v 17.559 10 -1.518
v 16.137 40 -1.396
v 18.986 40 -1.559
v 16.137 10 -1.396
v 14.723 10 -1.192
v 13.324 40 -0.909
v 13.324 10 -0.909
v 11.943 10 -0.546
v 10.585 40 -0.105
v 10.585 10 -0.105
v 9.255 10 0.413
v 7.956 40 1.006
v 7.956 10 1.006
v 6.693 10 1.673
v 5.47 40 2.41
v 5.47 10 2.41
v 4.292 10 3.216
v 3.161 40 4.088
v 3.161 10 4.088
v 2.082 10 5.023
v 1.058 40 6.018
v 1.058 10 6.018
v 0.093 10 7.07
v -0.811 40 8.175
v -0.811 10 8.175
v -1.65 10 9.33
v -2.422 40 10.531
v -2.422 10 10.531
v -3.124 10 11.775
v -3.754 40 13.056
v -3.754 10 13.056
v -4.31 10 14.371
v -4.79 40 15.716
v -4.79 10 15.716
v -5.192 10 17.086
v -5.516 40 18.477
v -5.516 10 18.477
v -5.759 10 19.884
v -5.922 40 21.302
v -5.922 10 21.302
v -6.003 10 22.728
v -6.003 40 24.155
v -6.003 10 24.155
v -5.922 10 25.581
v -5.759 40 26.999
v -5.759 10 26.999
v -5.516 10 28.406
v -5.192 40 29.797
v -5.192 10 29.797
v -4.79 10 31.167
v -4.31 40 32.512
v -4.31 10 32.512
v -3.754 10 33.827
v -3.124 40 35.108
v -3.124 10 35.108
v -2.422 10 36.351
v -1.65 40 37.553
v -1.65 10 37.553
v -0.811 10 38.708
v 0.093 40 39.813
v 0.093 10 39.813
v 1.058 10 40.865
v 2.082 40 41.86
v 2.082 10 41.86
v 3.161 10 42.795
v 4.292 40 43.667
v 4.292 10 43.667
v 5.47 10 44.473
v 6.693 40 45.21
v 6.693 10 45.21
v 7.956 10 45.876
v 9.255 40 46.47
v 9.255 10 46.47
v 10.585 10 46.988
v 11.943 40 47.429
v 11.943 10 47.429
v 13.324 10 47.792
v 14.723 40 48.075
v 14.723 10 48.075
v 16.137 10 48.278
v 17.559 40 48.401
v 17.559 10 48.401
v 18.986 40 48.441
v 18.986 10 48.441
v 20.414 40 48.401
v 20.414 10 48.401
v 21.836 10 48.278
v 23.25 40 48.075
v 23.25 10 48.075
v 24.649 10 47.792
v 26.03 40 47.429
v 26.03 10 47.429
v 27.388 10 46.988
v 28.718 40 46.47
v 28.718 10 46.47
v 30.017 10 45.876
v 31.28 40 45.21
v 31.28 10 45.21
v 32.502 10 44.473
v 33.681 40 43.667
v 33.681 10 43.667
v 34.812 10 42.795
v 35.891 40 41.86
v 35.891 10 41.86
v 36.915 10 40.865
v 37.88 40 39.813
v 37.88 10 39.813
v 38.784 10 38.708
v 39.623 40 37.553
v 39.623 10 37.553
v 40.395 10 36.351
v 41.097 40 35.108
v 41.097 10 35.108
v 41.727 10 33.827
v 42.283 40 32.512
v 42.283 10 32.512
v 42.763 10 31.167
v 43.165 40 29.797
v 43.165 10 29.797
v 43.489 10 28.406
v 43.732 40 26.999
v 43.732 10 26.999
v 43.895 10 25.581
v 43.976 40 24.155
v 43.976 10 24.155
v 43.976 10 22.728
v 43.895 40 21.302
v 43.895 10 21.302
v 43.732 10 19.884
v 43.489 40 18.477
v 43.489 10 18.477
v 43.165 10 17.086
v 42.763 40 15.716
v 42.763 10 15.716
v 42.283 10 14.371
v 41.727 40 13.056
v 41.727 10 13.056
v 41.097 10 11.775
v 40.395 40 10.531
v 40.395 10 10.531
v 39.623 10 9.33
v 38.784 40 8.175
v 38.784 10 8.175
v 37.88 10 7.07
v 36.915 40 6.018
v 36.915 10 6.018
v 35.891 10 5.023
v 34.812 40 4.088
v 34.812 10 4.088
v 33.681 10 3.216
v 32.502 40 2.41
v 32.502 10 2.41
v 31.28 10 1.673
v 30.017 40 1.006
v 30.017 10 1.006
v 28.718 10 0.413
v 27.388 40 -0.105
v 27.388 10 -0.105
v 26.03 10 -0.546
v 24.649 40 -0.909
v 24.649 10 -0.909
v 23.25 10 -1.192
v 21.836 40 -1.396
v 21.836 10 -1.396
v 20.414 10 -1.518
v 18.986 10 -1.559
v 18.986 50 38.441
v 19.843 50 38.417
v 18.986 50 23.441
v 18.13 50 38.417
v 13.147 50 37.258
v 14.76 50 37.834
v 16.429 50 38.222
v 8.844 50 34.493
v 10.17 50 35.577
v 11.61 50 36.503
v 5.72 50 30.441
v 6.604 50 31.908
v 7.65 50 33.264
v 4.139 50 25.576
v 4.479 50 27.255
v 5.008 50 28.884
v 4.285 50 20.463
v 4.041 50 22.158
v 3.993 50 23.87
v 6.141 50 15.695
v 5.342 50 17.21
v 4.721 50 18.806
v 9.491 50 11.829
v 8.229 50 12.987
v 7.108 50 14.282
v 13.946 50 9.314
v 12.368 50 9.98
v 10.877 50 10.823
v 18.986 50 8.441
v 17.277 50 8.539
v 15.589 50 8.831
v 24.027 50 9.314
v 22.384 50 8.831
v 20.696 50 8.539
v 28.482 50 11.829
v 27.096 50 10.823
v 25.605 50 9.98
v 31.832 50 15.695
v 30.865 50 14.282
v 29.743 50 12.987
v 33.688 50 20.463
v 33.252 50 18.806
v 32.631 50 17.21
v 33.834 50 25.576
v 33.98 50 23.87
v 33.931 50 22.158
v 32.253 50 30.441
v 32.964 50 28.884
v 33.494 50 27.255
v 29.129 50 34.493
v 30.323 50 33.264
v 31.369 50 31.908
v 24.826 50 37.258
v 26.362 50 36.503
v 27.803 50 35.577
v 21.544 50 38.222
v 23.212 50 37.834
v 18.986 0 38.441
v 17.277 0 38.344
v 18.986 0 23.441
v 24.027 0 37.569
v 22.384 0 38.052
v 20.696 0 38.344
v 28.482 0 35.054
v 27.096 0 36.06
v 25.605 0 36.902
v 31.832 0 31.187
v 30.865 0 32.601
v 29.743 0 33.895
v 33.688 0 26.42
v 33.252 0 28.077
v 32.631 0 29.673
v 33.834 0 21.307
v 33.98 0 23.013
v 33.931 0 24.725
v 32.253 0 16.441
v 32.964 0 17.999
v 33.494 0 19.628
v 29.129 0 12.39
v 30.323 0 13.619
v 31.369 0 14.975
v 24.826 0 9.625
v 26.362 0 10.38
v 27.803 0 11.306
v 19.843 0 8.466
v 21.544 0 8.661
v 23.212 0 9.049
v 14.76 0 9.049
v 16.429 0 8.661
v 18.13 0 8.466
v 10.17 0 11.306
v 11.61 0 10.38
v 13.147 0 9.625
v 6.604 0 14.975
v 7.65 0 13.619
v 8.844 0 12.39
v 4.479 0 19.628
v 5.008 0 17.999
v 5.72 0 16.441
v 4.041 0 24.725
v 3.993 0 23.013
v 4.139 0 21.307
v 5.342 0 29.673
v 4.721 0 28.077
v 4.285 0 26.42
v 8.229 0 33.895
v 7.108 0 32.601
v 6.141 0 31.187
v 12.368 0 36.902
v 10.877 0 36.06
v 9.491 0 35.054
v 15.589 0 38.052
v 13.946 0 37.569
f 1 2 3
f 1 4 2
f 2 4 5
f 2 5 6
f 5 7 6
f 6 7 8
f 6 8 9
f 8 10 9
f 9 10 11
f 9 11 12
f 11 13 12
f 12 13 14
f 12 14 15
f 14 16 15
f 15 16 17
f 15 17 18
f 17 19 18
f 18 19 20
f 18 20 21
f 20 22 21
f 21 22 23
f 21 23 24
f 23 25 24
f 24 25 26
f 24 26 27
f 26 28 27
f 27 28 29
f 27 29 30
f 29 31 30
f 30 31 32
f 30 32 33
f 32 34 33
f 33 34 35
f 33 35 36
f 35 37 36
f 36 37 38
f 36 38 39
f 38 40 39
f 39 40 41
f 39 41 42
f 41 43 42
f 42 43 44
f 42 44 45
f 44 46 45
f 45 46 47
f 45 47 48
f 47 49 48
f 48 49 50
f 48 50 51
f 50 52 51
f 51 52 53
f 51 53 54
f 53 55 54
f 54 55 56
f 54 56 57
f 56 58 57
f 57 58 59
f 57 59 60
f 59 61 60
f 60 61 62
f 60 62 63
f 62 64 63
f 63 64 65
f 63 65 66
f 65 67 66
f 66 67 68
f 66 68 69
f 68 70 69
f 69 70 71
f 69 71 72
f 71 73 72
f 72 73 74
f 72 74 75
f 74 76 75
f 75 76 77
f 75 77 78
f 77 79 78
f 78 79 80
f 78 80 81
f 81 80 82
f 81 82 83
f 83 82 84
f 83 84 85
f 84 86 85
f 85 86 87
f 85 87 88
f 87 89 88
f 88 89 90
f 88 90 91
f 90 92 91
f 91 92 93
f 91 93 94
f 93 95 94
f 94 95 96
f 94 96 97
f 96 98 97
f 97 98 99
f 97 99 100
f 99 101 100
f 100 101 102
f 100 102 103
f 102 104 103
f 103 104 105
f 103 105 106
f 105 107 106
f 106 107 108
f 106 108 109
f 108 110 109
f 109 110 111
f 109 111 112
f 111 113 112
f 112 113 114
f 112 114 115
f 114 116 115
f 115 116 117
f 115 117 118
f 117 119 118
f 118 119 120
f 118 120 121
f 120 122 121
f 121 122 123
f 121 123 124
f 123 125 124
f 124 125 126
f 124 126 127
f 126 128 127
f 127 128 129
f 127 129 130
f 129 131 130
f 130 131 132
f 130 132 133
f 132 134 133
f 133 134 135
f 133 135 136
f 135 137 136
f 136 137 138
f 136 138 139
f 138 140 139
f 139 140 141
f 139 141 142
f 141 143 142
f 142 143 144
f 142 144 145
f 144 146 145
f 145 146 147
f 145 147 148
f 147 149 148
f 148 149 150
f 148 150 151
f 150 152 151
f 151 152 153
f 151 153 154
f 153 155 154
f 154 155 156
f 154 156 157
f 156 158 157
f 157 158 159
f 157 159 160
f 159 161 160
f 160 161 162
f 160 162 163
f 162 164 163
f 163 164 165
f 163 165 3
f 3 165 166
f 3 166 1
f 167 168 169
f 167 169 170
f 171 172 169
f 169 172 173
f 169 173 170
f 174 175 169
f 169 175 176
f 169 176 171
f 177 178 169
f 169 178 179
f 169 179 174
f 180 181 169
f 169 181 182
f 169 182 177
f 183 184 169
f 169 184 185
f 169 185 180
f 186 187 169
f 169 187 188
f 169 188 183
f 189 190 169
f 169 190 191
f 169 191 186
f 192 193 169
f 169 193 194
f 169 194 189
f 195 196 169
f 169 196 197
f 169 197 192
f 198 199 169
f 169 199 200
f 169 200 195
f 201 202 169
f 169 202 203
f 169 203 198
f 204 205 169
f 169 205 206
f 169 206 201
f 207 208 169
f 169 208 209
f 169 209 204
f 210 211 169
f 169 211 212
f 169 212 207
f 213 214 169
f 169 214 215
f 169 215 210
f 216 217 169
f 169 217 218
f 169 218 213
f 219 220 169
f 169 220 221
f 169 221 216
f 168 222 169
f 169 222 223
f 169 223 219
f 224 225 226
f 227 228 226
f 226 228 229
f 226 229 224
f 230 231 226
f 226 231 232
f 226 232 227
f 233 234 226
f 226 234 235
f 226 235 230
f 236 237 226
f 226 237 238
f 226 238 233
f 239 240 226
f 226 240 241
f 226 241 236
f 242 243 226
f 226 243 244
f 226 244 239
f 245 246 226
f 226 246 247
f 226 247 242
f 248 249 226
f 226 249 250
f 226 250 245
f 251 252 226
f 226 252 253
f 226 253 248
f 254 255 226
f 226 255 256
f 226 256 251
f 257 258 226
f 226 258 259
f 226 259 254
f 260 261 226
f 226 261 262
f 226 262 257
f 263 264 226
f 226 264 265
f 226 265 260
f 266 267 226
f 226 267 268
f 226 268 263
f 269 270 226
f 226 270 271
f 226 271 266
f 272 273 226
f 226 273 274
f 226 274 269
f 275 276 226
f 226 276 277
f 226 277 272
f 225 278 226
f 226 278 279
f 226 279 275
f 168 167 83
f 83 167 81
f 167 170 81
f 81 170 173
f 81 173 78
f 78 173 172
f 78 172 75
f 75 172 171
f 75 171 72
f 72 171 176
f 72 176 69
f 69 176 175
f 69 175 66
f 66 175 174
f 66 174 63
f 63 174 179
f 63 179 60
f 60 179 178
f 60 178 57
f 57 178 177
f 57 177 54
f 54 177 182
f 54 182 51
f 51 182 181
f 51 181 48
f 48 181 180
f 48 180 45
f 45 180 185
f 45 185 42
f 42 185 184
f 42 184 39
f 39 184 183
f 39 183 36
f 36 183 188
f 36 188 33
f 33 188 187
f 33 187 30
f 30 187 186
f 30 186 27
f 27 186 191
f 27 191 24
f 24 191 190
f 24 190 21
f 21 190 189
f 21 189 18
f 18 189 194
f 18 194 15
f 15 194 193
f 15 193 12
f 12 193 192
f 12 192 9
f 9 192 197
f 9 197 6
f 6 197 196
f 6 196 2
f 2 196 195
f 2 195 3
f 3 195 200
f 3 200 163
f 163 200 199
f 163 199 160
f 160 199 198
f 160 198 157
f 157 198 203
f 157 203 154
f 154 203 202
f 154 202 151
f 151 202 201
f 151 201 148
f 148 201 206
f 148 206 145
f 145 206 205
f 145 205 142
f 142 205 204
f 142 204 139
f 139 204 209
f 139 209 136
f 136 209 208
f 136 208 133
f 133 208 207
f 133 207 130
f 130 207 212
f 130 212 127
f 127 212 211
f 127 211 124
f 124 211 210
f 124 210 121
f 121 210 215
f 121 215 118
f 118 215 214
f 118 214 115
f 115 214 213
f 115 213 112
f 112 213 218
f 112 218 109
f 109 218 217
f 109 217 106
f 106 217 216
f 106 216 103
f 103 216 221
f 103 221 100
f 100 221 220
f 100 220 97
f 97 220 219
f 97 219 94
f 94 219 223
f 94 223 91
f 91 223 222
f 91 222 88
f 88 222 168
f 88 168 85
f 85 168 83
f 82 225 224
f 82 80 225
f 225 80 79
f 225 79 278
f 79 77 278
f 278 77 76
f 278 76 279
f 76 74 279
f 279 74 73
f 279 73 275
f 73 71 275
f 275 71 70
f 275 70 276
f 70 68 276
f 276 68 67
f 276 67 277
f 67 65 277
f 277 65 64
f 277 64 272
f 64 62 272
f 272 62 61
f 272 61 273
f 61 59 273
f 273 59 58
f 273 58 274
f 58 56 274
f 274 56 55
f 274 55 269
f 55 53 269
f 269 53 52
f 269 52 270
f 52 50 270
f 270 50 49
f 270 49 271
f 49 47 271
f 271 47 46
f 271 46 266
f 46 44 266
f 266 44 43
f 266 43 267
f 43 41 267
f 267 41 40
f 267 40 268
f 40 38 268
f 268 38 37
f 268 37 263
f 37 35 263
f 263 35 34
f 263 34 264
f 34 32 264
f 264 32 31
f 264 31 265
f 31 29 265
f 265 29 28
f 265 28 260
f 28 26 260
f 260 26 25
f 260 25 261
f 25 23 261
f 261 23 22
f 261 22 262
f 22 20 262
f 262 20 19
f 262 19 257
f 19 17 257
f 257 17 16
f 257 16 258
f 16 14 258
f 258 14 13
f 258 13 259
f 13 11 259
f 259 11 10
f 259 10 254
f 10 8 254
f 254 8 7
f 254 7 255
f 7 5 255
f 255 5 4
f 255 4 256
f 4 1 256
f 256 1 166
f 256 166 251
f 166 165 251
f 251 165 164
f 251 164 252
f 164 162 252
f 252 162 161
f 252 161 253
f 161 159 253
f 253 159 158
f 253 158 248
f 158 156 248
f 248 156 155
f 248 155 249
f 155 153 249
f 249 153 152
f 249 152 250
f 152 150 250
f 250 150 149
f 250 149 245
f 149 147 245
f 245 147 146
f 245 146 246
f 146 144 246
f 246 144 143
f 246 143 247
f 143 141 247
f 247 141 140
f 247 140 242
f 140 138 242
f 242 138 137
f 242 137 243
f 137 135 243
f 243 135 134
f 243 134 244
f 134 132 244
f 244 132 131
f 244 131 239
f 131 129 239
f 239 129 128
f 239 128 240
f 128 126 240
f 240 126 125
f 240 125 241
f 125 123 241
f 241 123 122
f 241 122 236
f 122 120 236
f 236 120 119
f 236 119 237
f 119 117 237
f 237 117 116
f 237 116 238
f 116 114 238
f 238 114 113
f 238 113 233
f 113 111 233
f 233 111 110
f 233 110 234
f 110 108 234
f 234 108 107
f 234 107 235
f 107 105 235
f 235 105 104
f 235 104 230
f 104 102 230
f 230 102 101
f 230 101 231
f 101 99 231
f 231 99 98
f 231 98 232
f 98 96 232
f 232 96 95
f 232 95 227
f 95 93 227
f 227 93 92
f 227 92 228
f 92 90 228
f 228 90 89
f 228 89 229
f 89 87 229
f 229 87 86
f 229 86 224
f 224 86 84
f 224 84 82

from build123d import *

# Parameters (mm, degrees)
SKETCH1_R           = 25
BOSS_EXTRUDE4_DEPTH = 50
CHAMFER2_SIZE       = 10
CHAMFER3_SIZE       = 10


with BuildPart() as part:
    # Sketch1 → Boss-Extrude4 (new body)
    with BuildSketch(Plane(origin=(0, 0, 0), x_dir=(1, 0, 0), z_dir=(0, 1, 0))):
        with Locations(Location((18.986456029, -23.441436424, 0), (0, 0, 270))):
            Circle(SKETCH1_R)
    extrude(amount=BOSS_EXTRUDE4_DEPTH)

    # Chamfer2
    chamfer2_edges = [part.edges().sort_by_distance(p)[0] for p in [
        (18.986456029, 50, -1.558563576),
    ]]
    chamfer(chamfer2_edges, length=CHAMFER2_SIZE)

    # Chamfer3
    chamfer3_edges = [part.edges().sort_by_distance(p)[0] for p in [
        (18.986456029, 0, -1.558563576),
    ]]
    chamfer(chamfer3_edges, length=CHAMFER3_SIZE)


solid = part.part
